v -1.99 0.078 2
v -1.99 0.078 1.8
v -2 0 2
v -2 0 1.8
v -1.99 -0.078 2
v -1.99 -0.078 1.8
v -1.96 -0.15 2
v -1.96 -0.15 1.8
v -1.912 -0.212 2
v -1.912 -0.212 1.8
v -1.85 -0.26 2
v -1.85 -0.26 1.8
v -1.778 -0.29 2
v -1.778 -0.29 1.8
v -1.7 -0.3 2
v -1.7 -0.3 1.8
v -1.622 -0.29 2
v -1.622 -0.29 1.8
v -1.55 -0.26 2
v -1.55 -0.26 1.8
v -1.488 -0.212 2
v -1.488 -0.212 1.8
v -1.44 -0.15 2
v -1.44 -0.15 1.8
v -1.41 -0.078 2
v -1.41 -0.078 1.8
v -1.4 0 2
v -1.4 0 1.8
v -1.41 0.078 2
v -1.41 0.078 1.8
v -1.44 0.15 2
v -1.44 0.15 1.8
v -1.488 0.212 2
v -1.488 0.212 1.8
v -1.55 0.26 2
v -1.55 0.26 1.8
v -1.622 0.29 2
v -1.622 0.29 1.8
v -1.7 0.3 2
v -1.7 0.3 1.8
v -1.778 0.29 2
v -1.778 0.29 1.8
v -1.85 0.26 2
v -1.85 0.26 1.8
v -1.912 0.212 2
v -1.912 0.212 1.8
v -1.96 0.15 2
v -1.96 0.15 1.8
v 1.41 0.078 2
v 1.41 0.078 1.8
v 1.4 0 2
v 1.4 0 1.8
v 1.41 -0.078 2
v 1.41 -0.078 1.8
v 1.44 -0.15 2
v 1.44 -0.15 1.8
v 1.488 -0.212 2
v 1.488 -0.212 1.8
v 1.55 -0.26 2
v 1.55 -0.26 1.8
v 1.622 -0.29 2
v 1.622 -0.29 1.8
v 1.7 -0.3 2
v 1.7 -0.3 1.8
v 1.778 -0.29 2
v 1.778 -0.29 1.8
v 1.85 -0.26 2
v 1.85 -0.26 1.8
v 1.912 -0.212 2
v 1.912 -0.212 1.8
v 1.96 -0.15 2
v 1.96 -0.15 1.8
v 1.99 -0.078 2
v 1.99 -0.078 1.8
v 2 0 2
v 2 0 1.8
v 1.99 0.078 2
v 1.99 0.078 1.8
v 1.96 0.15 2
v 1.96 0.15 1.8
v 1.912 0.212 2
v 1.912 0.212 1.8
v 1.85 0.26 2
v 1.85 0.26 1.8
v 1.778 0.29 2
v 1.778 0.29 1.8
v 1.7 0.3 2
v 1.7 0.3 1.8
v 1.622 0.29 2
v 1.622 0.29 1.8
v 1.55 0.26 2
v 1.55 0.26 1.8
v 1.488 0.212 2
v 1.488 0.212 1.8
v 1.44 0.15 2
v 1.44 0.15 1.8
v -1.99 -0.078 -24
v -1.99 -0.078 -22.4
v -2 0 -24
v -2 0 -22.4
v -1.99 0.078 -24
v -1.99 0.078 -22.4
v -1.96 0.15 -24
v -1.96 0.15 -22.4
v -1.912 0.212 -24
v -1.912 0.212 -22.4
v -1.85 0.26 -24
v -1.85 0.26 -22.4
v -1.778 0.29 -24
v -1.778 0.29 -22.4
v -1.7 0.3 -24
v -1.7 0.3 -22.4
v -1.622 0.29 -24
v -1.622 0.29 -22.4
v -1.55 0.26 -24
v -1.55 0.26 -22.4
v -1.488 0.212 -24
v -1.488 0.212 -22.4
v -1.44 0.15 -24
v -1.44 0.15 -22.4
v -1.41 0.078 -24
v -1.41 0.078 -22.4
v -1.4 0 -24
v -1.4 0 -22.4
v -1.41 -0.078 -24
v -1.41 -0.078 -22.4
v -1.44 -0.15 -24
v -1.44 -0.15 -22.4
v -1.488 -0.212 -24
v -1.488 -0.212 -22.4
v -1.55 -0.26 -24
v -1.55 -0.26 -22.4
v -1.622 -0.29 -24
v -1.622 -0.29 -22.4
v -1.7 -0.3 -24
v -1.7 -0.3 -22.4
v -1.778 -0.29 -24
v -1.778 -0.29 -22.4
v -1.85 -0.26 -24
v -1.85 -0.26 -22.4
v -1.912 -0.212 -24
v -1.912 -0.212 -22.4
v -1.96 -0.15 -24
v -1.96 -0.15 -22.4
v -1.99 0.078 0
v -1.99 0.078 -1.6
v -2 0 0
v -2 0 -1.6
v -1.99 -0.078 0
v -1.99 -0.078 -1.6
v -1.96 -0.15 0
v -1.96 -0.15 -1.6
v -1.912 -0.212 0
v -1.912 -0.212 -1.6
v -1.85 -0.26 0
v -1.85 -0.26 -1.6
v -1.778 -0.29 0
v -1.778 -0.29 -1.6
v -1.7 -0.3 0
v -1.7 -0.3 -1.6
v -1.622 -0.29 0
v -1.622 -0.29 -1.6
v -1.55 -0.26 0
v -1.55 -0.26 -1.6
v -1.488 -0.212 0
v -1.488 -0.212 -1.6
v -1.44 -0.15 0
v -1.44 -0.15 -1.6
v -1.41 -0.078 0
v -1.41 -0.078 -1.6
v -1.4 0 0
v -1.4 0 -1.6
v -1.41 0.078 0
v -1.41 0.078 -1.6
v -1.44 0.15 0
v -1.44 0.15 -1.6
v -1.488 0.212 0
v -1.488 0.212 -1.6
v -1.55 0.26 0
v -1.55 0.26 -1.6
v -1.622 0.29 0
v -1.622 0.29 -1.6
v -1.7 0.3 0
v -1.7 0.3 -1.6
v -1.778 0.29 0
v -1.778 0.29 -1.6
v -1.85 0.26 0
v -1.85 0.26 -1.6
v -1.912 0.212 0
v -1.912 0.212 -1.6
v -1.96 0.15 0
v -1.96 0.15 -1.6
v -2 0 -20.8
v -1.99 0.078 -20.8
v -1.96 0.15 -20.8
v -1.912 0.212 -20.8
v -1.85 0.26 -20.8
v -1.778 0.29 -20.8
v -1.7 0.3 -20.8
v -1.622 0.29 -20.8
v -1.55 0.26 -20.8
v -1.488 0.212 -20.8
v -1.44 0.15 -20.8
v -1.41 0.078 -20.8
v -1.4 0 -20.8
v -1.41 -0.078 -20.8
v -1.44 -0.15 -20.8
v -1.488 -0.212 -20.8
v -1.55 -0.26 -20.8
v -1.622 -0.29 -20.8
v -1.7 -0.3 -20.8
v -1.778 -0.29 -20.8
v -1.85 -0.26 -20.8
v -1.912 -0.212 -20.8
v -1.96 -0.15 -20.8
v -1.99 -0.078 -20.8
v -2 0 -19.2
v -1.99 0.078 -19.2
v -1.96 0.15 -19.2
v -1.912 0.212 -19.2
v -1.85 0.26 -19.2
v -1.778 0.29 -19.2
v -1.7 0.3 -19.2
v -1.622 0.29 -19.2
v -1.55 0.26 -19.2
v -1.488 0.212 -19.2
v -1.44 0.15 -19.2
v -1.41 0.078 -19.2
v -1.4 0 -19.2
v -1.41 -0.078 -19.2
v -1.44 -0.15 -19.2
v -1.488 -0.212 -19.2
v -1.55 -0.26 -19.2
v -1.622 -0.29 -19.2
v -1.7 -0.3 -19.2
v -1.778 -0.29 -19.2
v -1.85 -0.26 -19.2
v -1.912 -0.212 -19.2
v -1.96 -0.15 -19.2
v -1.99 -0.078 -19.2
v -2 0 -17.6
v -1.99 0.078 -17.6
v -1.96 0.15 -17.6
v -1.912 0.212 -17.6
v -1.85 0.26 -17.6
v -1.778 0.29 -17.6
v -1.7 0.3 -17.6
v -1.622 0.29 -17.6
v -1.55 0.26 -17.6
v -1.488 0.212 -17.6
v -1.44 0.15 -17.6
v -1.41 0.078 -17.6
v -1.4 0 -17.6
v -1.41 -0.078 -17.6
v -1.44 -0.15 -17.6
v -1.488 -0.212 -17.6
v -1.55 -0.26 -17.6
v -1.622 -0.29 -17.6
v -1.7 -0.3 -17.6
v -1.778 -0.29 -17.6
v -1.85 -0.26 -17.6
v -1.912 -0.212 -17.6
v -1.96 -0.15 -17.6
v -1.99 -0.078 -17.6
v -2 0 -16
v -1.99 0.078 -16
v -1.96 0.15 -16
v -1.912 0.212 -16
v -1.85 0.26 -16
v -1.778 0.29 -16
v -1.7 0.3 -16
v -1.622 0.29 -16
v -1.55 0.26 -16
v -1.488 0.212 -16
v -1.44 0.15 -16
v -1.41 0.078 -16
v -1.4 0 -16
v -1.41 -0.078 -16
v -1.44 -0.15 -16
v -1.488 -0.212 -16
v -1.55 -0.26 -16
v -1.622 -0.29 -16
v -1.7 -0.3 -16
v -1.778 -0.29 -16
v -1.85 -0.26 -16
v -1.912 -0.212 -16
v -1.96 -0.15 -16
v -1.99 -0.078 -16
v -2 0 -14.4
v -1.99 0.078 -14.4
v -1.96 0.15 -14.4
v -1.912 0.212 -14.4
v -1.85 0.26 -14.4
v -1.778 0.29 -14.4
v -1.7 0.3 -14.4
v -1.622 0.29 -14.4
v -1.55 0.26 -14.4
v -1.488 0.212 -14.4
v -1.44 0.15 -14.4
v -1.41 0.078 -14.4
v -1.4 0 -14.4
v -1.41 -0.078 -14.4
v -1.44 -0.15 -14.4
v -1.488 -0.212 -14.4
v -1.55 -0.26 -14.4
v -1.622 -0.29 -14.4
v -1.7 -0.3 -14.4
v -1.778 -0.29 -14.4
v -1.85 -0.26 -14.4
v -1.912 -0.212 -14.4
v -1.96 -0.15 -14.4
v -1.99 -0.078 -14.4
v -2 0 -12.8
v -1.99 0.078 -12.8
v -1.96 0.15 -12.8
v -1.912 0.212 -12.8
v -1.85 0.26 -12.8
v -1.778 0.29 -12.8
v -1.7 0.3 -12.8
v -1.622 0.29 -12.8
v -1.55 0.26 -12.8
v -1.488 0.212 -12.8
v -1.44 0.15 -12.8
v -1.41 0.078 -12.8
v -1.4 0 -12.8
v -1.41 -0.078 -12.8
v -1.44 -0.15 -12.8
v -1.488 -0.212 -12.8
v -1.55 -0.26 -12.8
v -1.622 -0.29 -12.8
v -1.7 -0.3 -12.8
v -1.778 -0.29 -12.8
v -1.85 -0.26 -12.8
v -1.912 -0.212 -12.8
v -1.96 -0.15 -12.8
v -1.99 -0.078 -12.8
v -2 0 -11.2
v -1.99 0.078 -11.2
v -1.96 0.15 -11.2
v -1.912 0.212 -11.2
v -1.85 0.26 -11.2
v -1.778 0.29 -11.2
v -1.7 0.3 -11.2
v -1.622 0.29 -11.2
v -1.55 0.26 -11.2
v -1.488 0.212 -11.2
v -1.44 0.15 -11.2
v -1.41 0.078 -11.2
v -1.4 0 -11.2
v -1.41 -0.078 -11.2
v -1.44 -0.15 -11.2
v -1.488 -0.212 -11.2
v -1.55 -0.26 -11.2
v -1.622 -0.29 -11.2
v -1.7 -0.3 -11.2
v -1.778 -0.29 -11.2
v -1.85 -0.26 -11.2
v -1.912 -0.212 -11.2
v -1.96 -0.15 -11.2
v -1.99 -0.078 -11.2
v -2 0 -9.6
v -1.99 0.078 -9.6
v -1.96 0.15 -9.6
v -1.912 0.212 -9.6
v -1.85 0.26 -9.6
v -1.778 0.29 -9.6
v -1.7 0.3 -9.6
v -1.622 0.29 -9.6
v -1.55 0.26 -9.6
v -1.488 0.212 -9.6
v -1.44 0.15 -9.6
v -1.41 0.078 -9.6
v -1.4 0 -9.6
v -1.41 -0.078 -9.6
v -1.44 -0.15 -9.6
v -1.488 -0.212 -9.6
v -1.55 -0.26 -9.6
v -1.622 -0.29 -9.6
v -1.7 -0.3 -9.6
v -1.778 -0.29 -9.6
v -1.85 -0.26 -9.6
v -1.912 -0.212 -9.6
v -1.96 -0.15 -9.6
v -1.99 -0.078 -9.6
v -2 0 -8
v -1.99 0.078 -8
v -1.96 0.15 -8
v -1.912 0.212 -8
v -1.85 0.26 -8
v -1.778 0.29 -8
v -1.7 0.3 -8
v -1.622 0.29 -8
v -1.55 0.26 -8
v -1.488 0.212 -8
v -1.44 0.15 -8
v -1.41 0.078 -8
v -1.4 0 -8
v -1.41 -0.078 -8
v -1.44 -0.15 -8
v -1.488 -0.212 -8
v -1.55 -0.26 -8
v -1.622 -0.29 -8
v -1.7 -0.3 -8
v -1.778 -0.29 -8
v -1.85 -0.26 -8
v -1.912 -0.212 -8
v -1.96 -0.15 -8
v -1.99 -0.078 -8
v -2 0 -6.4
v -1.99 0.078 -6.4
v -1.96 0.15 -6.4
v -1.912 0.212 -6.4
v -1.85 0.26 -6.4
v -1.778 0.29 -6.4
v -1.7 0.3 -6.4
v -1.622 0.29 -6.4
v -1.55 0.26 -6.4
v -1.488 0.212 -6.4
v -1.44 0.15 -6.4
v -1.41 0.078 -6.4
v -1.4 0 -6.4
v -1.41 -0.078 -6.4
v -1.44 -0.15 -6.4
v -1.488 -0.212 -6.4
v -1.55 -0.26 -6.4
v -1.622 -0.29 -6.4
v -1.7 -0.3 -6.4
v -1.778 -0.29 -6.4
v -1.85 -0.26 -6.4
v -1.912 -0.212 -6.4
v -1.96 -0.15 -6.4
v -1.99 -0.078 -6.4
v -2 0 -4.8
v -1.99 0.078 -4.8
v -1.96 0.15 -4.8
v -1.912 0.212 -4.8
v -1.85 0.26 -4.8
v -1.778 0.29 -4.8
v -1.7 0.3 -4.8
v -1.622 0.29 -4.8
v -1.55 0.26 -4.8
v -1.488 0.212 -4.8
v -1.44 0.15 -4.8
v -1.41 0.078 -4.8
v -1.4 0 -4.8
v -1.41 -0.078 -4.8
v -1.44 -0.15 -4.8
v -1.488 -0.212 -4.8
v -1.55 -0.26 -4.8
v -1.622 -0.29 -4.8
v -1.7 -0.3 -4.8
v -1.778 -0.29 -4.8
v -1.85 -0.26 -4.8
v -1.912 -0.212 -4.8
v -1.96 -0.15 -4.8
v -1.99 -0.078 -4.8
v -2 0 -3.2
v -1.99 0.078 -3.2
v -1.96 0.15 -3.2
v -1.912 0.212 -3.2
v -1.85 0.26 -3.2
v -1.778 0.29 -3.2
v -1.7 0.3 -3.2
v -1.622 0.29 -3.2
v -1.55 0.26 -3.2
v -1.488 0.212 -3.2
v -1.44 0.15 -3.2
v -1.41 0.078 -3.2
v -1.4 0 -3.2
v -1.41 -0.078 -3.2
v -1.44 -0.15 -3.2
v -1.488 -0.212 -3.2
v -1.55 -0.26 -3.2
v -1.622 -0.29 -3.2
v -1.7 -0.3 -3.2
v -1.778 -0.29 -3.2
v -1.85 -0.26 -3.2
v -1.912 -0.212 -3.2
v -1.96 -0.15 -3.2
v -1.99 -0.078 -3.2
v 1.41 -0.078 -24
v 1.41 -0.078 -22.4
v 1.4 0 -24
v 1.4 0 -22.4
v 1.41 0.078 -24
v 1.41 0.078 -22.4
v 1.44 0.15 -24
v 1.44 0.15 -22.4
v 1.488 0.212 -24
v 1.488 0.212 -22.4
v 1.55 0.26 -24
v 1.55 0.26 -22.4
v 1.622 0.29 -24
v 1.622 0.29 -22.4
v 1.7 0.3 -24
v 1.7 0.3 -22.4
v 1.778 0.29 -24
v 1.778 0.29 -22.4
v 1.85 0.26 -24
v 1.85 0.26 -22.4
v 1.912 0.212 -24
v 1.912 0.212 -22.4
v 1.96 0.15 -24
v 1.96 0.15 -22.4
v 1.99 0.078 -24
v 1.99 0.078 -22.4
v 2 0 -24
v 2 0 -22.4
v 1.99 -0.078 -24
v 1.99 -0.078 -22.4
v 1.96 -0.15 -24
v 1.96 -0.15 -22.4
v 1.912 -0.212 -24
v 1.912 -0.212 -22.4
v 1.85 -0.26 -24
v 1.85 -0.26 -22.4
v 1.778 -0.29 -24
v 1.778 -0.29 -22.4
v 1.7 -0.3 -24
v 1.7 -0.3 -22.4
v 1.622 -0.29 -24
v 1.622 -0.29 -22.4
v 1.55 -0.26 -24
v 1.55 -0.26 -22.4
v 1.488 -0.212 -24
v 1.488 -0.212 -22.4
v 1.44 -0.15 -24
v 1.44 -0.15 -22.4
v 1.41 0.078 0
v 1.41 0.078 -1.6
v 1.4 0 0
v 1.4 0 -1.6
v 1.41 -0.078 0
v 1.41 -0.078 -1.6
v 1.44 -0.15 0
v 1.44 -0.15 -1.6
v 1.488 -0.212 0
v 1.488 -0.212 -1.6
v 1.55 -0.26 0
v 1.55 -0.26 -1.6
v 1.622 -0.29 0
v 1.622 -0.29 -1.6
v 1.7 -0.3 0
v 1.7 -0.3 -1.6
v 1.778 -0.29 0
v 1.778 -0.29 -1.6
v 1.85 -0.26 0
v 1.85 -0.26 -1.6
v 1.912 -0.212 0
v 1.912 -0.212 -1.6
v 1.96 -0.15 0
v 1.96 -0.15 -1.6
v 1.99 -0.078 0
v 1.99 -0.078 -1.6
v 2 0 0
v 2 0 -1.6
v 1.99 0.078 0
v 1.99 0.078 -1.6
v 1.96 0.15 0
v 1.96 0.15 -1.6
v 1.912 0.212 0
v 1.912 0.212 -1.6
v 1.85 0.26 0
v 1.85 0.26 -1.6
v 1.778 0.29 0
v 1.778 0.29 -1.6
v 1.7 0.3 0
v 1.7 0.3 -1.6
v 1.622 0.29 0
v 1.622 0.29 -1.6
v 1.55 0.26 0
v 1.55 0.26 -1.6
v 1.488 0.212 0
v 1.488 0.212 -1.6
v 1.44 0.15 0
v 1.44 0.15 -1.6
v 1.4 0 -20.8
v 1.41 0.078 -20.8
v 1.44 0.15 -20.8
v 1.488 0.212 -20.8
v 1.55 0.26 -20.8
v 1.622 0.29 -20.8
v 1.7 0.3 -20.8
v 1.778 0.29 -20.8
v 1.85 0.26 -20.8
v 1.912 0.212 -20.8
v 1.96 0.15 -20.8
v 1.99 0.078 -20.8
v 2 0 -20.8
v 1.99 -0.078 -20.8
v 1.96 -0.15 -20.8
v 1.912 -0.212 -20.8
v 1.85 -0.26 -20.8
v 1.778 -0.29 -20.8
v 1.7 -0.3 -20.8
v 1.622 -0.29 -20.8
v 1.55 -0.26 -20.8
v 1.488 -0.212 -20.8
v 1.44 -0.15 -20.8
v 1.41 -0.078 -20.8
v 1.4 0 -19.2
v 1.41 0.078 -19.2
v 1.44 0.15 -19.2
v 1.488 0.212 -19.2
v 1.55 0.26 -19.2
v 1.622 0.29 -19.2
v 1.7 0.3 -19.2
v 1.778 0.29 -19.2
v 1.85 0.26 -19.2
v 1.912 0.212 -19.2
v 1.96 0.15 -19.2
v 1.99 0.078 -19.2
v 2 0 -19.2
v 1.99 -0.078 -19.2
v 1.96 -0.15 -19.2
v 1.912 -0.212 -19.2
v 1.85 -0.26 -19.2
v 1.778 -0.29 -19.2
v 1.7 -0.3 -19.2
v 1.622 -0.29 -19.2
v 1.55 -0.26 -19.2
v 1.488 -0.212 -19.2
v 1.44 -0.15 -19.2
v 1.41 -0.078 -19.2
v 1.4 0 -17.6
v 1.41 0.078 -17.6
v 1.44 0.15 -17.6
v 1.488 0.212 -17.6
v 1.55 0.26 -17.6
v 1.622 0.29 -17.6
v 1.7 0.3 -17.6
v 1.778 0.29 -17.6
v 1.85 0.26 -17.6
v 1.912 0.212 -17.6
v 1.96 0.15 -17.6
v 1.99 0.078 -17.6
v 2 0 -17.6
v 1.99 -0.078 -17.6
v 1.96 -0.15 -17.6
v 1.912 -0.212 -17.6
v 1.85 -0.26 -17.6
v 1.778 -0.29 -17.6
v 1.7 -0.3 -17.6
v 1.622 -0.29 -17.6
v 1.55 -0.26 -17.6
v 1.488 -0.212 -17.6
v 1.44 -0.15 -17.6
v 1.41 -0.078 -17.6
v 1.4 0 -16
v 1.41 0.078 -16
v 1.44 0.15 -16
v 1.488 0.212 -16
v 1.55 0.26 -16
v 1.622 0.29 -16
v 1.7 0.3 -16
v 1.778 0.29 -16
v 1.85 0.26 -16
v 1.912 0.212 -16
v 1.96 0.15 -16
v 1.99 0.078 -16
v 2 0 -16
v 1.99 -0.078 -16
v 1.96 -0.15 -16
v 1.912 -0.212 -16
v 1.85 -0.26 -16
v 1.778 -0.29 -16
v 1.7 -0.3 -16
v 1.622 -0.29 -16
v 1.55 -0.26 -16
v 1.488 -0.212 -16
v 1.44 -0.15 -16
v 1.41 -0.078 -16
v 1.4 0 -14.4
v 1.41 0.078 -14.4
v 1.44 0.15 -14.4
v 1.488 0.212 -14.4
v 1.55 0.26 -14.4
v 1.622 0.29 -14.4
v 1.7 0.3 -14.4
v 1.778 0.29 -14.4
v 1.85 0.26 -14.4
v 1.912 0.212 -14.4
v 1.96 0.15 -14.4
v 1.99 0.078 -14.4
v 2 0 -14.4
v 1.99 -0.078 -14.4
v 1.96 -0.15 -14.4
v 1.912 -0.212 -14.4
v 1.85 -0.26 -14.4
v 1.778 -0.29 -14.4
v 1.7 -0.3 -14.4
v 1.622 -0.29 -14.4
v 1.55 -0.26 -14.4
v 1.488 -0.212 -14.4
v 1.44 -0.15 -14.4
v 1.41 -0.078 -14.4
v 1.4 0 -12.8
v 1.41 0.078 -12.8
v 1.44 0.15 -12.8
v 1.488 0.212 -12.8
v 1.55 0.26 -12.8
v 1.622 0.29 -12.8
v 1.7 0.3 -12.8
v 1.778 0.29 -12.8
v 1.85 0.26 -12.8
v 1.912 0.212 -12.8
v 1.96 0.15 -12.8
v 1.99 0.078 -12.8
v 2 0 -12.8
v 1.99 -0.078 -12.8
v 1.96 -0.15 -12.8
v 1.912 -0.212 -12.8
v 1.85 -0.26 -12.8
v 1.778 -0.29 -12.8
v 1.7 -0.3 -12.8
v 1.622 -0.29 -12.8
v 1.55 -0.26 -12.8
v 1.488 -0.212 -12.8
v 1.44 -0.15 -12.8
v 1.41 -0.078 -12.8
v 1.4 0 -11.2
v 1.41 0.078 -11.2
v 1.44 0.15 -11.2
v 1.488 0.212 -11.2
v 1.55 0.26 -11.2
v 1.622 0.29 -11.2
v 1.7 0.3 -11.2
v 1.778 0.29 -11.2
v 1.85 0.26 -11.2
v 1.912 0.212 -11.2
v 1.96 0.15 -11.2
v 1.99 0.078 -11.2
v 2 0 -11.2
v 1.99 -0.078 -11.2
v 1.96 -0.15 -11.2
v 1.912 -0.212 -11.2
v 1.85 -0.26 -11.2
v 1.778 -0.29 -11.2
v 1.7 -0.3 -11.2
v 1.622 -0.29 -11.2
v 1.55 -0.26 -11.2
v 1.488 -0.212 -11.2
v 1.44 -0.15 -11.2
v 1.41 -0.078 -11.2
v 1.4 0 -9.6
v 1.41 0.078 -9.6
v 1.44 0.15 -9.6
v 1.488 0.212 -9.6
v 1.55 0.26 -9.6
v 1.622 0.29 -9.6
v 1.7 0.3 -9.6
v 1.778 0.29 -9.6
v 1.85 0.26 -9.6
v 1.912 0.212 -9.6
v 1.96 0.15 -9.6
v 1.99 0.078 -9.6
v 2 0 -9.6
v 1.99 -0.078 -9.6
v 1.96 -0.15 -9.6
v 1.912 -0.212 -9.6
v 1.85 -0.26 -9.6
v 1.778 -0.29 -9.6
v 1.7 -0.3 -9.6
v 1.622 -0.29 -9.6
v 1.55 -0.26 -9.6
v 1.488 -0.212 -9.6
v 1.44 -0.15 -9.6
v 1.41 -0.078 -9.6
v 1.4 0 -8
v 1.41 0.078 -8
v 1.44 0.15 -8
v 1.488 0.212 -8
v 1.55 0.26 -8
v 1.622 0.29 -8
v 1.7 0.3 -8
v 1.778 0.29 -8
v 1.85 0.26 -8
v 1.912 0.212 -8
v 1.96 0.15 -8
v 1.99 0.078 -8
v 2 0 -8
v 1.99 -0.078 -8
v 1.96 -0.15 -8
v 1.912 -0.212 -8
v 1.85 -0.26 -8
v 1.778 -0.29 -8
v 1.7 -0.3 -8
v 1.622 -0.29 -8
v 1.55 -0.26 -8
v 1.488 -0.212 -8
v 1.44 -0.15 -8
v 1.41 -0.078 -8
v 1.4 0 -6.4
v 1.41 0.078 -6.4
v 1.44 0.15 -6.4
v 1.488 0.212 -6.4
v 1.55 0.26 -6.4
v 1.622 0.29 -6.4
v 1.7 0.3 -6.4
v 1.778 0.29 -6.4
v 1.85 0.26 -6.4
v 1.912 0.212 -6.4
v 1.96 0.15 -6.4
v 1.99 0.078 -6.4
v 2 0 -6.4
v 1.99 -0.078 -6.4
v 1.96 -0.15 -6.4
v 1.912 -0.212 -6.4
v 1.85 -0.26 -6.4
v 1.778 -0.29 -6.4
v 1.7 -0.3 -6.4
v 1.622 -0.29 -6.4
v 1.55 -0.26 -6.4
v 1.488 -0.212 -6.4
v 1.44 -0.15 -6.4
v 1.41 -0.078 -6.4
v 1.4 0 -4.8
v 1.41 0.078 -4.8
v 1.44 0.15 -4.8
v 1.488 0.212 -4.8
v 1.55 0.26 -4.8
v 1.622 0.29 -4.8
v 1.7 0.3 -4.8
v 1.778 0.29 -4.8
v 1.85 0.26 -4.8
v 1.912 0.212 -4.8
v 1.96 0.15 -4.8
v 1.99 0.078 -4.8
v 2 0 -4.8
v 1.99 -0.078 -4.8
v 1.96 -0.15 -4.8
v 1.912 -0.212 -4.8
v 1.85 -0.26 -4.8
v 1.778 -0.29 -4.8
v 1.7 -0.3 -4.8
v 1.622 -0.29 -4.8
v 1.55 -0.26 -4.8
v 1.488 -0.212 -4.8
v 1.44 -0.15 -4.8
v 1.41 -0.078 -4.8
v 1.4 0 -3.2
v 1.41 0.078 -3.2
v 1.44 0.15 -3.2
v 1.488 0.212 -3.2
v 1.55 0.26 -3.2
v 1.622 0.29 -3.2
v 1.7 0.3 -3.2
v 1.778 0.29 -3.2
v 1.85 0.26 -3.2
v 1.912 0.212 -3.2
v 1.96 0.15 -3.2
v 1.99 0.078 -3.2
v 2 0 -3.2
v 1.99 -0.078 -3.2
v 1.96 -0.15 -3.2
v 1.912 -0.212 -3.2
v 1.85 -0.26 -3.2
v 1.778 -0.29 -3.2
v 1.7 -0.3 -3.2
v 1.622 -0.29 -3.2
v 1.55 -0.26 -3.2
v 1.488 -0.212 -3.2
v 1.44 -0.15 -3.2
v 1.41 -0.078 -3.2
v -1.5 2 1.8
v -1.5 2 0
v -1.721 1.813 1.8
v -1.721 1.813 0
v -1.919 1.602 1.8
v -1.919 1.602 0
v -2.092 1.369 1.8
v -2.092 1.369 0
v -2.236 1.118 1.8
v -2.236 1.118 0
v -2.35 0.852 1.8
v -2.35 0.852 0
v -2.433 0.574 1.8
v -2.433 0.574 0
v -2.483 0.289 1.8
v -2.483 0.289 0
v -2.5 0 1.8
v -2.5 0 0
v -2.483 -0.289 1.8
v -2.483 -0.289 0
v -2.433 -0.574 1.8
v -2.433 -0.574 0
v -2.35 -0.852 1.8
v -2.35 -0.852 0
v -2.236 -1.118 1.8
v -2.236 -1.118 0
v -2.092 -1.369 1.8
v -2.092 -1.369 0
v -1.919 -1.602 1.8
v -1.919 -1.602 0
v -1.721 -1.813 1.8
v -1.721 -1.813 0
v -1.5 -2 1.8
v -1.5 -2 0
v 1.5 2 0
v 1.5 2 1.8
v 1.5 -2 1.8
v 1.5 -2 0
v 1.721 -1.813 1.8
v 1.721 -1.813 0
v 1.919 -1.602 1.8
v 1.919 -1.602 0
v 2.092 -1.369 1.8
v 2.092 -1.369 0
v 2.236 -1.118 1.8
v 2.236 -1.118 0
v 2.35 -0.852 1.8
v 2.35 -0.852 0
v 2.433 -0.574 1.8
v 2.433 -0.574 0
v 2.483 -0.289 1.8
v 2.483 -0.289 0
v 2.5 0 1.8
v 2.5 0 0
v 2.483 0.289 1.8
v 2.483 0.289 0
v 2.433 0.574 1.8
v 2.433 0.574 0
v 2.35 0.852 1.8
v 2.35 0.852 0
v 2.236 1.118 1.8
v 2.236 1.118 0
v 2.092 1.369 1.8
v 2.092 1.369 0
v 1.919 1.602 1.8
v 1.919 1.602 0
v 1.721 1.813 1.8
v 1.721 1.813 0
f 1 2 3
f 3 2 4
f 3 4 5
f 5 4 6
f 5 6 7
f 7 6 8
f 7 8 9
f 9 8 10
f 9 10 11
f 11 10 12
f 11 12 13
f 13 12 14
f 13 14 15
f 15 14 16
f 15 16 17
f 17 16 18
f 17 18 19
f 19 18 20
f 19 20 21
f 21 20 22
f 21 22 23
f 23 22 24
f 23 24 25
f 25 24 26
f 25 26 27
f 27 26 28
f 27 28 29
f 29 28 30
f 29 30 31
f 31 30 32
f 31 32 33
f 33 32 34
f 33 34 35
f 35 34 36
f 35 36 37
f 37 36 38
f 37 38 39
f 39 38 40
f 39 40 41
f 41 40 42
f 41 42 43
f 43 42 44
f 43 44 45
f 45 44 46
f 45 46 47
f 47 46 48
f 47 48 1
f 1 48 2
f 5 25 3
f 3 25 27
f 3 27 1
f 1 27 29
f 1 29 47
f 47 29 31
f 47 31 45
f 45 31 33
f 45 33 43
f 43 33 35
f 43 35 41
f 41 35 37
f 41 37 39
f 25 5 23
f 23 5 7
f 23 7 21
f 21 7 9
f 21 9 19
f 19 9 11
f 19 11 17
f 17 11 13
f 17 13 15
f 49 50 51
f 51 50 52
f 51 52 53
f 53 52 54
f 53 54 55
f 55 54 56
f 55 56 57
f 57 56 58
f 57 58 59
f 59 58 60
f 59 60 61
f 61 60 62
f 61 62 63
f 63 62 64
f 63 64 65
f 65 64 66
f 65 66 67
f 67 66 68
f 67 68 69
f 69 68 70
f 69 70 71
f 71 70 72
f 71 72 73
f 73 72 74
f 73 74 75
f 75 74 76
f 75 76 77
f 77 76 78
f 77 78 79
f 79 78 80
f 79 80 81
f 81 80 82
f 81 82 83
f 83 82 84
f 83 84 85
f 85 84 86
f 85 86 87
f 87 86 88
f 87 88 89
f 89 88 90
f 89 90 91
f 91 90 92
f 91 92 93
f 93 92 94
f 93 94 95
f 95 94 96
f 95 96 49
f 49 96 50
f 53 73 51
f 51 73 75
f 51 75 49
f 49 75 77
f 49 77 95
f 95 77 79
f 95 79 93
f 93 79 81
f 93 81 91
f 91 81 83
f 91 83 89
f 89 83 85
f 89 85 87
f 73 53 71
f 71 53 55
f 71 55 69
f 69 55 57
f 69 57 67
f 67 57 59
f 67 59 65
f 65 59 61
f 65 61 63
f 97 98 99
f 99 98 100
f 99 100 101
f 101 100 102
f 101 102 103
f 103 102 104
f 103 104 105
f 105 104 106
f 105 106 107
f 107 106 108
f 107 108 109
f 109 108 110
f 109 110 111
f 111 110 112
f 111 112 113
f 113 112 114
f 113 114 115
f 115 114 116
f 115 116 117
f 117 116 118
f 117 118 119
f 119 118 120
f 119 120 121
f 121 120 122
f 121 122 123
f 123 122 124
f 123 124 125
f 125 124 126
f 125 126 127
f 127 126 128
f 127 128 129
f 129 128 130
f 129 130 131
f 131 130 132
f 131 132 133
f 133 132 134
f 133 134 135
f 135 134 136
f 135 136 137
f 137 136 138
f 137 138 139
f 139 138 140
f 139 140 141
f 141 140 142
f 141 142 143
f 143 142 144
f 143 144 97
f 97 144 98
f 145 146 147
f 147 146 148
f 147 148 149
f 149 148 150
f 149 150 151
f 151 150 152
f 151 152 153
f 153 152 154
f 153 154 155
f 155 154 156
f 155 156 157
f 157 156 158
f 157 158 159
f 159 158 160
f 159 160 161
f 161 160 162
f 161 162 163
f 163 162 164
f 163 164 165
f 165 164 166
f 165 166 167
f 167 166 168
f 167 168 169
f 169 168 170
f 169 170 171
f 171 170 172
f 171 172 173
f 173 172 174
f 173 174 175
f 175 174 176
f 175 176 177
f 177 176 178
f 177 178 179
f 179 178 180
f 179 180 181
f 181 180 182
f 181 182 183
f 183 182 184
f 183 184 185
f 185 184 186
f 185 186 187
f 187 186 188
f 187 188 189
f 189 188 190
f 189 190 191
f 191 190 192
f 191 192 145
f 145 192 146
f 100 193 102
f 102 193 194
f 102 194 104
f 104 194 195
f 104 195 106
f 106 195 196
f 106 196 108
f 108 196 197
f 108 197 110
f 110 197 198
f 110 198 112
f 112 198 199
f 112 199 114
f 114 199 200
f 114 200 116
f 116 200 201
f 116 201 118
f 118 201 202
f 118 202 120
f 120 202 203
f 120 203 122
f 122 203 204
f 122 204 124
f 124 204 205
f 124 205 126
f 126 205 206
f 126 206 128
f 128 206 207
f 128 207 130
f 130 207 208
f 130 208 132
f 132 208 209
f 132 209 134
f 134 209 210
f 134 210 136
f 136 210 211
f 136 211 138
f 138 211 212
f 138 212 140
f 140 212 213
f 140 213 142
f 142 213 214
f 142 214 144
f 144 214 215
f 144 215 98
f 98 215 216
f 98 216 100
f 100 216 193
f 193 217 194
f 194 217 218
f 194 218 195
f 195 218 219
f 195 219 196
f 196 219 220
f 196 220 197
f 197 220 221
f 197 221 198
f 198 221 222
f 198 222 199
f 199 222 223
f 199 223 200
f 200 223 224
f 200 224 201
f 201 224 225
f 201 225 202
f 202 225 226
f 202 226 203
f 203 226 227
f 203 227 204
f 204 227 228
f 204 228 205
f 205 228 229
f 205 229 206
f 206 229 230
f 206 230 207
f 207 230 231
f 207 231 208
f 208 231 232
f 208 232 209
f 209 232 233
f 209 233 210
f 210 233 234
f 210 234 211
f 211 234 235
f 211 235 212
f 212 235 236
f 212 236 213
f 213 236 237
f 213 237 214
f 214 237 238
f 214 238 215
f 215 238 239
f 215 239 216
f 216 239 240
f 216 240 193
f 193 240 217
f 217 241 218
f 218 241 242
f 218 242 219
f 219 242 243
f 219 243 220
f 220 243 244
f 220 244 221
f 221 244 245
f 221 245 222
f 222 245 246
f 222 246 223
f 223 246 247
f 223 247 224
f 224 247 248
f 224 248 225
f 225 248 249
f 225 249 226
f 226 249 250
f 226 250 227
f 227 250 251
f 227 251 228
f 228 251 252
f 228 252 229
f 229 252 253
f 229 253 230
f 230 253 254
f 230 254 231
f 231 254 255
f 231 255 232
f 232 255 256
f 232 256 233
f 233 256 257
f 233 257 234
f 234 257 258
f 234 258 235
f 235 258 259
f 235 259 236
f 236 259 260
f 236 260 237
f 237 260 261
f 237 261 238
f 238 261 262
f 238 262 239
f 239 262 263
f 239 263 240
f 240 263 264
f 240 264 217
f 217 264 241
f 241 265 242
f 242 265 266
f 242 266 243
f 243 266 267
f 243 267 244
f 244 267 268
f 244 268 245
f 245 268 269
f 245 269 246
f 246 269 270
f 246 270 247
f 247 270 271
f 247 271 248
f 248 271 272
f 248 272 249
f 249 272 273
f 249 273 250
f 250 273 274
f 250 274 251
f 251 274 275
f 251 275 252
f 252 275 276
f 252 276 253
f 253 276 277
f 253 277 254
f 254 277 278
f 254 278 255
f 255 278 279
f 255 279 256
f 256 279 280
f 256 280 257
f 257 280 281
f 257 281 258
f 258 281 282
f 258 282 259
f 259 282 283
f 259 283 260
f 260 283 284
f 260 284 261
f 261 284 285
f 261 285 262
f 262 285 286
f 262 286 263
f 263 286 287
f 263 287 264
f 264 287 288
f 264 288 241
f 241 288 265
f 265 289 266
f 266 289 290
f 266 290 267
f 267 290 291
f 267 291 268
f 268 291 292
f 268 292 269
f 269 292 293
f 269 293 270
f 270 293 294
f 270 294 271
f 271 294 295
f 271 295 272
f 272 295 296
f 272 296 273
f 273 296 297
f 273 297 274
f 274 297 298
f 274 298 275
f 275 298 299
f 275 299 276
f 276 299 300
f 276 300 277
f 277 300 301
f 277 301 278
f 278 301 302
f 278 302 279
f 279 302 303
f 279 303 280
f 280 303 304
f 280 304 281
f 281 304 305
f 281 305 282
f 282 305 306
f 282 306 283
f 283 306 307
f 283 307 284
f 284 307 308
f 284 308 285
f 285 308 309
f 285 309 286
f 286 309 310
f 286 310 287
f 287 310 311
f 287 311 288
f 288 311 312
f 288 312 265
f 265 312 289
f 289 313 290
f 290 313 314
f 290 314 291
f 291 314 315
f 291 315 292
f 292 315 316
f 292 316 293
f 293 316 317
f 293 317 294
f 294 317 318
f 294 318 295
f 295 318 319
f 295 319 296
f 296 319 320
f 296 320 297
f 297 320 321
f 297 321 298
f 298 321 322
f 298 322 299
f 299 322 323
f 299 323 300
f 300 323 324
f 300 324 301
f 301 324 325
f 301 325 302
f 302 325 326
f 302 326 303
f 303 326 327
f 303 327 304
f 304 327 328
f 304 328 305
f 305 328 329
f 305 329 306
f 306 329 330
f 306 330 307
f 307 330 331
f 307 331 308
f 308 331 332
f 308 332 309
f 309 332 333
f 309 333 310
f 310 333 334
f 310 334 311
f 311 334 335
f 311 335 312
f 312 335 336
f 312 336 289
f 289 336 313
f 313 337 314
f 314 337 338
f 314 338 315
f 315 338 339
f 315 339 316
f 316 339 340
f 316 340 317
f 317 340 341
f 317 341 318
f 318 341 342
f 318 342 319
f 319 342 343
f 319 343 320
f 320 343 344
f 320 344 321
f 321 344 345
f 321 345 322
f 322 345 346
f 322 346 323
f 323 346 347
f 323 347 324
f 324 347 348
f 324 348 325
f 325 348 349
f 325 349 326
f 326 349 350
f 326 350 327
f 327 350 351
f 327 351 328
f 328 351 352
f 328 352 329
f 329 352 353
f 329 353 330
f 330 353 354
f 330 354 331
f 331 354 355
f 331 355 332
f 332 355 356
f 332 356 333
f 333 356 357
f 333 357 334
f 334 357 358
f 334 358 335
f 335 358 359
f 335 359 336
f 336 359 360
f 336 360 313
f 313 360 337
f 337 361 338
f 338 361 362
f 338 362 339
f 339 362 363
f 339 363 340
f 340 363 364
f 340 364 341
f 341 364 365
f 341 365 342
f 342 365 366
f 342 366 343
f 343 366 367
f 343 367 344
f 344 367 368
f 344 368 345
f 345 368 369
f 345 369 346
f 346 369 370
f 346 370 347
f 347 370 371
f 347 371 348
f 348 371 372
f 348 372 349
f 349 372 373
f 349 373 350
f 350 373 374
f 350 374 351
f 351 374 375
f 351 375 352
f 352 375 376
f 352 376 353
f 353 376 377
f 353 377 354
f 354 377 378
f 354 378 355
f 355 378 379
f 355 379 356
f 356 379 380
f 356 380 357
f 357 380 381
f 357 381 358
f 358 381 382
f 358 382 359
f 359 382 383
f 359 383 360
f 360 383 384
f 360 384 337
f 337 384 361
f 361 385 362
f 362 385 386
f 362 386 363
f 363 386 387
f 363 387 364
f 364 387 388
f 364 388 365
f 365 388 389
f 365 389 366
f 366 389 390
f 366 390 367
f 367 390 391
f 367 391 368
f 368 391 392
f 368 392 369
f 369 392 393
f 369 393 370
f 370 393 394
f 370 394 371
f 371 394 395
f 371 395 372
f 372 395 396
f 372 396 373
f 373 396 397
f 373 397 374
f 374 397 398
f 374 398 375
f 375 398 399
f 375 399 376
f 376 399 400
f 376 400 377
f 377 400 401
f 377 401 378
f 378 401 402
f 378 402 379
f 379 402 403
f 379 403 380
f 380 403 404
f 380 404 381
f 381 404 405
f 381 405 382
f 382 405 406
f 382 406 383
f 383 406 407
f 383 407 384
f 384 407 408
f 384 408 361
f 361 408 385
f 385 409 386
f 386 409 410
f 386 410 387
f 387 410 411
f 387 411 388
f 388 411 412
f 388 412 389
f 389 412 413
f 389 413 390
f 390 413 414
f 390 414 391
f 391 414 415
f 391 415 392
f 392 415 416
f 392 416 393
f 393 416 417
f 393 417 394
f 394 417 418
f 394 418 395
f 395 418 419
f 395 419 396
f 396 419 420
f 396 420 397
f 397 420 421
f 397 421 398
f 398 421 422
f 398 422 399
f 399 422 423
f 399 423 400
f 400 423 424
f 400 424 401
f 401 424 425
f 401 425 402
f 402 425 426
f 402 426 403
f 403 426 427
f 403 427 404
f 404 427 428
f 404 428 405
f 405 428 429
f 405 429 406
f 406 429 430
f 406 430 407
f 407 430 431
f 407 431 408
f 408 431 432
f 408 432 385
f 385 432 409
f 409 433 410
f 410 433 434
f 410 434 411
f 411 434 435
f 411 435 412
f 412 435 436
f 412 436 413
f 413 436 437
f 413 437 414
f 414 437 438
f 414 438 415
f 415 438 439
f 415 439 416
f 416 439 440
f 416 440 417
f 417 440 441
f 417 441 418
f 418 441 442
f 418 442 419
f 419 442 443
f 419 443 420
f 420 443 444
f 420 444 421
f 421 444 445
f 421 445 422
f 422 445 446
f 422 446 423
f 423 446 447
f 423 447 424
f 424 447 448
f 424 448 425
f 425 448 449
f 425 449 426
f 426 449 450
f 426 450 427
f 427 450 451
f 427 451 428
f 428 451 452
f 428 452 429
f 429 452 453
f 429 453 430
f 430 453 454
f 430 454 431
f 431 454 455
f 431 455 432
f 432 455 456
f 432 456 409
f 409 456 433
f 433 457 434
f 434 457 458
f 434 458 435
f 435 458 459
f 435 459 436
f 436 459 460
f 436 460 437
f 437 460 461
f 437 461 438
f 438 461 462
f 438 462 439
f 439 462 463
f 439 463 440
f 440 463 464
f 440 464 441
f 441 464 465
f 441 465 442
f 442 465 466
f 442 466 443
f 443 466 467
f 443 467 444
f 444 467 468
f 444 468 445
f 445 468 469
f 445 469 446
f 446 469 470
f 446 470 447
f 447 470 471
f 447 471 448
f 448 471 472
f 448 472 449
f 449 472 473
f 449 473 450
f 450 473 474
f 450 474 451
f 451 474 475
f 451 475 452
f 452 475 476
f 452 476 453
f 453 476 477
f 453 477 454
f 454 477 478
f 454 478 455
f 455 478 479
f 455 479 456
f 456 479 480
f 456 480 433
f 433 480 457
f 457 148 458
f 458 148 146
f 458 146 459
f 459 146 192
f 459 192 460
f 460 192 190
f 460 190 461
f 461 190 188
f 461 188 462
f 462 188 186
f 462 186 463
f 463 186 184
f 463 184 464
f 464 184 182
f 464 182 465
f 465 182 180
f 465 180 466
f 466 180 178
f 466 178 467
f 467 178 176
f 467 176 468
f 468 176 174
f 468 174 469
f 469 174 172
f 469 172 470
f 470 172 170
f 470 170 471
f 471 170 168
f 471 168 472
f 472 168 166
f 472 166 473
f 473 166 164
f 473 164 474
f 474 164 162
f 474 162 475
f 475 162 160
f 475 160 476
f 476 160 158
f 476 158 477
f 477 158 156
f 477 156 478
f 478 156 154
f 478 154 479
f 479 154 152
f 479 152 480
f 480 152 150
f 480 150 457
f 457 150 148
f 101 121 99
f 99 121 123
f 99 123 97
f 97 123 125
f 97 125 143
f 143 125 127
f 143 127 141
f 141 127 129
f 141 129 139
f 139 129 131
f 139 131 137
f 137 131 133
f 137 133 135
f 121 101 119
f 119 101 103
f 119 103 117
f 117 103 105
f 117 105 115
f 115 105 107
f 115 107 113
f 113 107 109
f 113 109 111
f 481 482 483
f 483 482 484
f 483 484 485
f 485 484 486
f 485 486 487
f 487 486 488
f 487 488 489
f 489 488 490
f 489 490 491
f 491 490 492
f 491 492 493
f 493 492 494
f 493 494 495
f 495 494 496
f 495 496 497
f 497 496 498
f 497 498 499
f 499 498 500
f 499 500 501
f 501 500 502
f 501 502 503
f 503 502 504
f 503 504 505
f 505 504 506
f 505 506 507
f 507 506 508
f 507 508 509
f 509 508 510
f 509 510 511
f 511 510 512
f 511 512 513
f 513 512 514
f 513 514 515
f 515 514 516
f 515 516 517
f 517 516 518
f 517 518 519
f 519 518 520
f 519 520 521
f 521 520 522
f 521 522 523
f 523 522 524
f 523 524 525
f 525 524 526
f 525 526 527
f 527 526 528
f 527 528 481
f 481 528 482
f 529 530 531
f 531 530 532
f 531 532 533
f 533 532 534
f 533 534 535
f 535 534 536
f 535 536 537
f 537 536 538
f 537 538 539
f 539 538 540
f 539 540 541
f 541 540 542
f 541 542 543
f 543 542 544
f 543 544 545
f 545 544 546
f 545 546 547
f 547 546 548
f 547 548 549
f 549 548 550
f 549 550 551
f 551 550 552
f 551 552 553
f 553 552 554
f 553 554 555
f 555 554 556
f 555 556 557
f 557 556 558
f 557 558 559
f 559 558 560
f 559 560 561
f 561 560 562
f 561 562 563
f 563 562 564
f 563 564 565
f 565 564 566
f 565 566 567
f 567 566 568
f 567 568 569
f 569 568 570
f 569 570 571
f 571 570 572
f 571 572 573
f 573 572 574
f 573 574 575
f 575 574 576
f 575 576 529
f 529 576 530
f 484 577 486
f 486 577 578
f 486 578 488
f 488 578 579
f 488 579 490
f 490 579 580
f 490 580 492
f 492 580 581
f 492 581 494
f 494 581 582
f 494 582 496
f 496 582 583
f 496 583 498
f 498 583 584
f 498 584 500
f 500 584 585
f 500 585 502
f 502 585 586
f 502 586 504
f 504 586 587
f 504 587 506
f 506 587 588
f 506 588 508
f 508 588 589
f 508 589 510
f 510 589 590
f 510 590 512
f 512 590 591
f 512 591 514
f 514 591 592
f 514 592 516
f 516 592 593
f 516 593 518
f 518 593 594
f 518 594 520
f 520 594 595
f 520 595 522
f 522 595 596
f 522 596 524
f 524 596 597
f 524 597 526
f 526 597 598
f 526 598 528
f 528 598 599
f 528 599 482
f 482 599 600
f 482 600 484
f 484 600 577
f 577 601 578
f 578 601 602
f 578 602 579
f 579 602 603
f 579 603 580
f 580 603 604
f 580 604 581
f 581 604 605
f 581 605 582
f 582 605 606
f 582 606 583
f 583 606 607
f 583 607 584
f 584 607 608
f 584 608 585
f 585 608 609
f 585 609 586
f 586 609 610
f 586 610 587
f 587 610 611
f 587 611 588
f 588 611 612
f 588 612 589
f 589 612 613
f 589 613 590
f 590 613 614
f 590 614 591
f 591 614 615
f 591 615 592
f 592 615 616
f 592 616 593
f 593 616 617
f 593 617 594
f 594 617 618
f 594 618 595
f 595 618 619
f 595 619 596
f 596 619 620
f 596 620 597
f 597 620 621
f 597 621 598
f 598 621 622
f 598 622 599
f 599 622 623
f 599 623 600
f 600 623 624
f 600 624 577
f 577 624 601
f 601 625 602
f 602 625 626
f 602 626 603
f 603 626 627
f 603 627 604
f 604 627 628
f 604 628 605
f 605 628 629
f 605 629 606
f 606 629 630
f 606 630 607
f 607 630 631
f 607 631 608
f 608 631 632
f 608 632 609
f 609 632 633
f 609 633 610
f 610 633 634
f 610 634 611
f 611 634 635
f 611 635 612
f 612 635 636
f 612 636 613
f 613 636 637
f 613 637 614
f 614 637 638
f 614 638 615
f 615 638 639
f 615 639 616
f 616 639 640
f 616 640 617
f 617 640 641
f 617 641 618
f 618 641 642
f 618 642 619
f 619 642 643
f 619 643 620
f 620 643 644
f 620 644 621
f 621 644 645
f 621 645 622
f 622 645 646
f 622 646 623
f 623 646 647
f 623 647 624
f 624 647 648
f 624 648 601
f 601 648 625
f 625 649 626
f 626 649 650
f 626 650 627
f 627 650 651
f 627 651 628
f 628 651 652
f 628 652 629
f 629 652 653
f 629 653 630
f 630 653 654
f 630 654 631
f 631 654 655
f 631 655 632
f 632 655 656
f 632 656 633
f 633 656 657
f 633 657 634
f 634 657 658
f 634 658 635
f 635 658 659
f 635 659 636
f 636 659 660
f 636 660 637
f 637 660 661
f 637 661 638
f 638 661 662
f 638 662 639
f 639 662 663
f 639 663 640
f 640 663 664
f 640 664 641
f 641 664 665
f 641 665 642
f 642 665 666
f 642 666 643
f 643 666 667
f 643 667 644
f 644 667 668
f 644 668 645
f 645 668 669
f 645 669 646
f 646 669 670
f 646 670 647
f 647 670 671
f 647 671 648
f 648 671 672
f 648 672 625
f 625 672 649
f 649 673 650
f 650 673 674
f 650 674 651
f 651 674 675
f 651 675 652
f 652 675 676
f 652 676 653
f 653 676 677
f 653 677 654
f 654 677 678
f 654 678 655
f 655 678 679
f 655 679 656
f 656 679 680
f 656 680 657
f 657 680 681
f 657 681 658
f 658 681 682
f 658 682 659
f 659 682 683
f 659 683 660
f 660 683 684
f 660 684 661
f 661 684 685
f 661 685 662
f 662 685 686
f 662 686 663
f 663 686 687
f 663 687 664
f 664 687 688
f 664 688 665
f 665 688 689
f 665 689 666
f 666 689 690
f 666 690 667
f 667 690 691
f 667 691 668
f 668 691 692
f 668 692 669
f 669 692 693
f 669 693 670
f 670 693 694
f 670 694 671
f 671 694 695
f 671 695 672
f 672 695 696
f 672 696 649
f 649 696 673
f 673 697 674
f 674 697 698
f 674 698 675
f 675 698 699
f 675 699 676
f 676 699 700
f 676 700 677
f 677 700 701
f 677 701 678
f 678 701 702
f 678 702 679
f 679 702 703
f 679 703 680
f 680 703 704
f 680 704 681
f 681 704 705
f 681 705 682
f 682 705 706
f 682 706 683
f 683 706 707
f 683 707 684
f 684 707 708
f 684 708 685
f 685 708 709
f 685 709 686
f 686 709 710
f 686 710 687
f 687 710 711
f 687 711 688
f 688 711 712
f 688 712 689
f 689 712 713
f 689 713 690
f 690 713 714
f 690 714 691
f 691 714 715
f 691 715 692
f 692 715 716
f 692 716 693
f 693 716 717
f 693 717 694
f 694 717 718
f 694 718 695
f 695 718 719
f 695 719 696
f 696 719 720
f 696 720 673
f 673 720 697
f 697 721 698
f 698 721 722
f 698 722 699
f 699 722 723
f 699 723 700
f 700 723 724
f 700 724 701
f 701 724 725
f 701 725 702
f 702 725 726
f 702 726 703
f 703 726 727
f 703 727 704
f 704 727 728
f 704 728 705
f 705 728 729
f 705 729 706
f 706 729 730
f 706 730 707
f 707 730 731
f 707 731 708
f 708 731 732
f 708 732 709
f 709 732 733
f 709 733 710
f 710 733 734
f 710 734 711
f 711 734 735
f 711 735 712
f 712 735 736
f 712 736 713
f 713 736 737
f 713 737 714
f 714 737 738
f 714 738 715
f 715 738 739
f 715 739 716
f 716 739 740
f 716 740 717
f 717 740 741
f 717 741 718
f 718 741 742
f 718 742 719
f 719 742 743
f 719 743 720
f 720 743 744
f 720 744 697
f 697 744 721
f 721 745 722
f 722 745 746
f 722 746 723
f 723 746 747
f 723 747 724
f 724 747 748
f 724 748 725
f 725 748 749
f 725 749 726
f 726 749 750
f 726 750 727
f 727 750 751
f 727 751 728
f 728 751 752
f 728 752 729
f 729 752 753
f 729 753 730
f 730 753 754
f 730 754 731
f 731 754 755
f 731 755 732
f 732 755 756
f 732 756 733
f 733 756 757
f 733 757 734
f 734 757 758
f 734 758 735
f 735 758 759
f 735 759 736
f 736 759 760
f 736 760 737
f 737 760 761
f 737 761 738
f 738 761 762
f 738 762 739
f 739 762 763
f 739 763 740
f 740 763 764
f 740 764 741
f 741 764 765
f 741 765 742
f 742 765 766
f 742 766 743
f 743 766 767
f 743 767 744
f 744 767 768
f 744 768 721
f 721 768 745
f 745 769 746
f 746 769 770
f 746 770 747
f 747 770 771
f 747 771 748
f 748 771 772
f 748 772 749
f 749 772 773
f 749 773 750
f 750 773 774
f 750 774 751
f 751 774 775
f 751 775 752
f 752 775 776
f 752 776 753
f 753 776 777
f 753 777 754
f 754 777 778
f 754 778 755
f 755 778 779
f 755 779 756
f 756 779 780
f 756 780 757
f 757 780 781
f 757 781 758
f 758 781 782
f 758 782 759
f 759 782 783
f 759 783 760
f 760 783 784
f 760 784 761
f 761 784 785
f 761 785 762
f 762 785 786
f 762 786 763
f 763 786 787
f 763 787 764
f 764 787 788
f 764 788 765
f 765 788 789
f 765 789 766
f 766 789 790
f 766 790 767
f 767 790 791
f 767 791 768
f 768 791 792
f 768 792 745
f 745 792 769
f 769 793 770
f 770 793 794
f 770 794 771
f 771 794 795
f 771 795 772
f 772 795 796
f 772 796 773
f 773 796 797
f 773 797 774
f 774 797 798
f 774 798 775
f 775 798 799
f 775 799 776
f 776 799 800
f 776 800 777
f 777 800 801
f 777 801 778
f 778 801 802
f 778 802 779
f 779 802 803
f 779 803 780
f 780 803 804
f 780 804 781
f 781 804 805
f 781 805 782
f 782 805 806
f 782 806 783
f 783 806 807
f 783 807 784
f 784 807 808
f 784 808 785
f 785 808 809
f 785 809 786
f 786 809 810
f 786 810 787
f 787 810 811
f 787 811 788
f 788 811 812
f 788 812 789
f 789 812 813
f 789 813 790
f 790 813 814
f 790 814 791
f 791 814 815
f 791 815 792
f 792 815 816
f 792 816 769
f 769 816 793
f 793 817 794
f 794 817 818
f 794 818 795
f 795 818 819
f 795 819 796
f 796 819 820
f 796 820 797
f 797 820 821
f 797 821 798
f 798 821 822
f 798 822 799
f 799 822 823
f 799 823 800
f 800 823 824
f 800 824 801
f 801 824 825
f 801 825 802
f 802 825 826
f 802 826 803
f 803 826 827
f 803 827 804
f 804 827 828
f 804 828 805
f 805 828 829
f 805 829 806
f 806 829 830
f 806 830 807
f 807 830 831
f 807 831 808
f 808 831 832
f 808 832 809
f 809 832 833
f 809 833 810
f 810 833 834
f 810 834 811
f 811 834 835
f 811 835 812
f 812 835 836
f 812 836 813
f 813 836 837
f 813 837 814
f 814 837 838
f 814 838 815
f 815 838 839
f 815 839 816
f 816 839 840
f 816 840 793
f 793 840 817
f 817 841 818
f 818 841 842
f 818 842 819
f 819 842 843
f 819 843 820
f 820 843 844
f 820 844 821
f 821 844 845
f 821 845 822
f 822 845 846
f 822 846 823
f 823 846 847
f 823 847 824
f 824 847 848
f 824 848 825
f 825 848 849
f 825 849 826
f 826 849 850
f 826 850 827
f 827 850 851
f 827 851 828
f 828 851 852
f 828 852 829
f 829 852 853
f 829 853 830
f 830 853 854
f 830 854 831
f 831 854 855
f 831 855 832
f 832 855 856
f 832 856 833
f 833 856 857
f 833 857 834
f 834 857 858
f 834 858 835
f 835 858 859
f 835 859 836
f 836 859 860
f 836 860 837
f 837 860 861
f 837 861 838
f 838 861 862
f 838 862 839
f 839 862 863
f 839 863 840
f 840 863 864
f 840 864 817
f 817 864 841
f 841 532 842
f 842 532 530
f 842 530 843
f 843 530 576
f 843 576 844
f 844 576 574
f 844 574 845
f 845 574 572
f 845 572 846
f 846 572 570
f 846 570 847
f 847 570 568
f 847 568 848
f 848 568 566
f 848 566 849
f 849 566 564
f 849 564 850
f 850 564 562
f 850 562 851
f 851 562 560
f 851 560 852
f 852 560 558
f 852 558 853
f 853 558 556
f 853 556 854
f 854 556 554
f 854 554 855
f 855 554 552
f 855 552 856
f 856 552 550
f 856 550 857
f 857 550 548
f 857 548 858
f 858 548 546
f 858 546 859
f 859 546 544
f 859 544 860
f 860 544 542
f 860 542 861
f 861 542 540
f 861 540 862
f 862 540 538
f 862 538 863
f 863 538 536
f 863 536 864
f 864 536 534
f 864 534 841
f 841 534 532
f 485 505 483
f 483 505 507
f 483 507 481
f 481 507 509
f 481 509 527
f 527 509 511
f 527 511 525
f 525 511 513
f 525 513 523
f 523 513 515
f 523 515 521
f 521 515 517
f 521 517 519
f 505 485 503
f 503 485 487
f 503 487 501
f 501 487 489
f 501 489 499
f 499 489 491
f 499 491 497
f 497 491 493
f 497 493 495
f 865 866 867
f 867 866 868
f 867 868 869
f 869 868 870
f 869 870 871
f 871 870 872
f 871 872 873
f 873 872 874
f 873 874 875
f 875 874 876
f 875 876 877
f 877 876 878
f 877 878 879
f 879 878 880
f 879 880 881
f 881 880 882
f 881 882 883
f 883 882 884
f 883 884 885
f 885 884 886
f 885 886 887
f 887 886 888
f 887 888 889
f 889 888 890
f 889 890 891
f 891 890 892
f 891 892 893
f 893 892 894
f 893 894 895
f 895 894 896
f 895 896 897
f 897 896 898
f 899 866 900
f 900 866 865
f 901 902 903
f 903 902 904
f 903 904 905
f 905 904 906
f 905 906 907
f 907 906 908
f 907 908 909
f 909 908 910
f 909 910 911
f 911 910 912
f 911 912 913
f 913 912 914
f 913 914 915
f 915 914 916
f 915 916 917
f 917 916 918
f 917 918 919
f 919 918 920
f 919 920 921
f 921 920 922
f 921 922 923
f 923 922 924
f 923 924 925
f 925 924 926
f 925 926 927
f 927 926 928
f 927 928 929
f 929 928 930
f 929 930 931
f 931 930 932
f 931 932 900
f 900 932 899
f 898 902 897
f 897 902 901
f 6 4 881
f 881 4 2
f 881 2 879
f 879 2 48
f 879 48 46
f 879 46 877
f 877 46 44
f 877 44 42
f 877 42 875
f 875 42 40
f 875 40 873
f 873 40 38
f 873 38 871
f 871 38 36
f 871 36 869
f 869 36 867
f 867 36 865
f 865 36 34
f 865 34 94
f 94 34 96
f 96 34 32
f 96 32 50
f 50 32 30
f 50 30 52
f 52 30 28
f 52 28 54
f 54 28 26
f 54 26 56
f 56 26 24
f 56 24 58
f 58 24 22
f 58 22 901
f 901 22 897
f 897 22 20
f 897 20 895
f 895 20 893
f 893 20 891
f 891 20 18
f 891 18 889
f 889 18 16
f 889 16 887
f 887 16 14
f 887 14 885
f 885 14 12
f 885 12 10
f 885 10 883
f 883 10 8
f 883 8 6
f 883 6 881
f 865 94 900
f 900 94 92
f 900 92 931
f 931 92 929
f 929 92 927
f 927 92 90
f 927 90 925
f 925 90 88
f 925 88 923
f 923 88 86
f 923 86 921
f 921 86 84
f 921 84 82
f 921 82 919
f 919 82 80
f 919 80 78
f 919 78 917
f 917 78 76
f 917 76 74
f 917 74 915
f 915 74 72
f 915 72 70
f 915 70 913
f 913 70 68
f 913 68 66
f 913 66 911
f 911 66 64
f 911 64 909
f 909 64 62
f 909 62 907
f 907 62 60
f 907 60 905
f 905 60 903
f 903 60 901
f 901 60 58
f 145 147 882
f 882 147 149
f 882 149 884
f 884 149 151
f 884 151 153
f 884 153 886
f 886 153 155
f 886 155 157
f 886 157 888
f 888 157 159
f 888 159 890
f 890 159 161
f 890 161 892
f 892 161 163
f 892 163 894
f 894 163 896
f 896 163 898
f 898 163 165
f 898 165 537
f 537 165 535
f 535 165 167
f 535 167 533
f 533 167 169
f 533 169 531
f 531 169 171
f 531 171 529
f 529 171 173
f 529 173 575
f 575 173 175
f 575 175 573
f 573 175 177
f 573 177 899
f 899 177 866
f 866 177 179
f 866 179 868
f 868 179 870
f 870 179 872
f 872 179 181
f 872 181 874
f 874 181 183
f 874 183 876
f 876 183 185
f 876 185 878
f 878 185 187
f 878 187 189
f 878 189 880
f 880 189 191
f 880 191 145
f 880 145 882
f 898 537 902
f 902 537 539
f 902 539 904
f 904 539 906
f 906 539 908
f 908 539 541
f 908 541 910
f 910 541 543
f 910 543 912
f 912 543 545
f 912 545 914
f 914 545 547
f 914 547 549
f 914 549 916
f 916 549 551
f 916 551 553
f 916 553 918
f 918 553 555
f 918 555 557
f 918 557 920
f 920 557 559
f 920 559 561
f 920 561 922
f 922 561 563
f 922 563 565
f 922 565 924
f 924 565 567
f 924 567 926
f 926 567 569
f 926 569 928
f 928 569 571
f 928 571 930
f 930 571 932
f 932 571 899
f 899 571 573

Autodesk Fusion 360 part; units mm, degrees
sketch "LightResistorMeasurement" plane through (0, 0, 0) normal (0, 0, 1) x (1, 0, 0)
  line L0 (0, 0) -> (0.0874, 0)
  line L1 (0, 0) -> (0, 2) construction
  line L2 (0, 0) -> (0, -2) construction
  line L3 (0, 2) -> (1.5, 2)
  line L4 (0, 2) -> (-1.5, 2)
  line L5 (0, -2) -> (1.5, -2)
  line L6 (0, -2) -> (-1.5, -2)
  arc A0 (-1.5, 2) -> (-1.5, -2) centre (0, 0) ccw
  arc A1 (1.5, -2) -> (1.5, 2) centre (0, 0) ccw
  line L7 (0, 0) -> (2, 0) construction
  line L8 (0, 0) -> (-2, 0) construction
  circle A2 centre (-1.7, 0) radius 0.3
  circle A3 centre (1.7, 0) radius 0.3
  dimension "d1" = 5
  dimension "d2" = 2
  dimension "d3" = 2
  dimension "d4" = 2
  dimension "d5" = 0.6
  dimension "d6" = 0.6
extrude "Extrude1" add sketch "LightResistorMeasurement" along normal blind 1.8 contours L3 L4 L5 L6 A0 A1 | A2 | A3
extrude "Extrude2" add sketch "LightResistorMeasurement" against normal blind 24 contours A2 | A3
extrude "Extrude3" add sketch "LightResistorMeasurement" along normal blind 2 contours A2 | A3
